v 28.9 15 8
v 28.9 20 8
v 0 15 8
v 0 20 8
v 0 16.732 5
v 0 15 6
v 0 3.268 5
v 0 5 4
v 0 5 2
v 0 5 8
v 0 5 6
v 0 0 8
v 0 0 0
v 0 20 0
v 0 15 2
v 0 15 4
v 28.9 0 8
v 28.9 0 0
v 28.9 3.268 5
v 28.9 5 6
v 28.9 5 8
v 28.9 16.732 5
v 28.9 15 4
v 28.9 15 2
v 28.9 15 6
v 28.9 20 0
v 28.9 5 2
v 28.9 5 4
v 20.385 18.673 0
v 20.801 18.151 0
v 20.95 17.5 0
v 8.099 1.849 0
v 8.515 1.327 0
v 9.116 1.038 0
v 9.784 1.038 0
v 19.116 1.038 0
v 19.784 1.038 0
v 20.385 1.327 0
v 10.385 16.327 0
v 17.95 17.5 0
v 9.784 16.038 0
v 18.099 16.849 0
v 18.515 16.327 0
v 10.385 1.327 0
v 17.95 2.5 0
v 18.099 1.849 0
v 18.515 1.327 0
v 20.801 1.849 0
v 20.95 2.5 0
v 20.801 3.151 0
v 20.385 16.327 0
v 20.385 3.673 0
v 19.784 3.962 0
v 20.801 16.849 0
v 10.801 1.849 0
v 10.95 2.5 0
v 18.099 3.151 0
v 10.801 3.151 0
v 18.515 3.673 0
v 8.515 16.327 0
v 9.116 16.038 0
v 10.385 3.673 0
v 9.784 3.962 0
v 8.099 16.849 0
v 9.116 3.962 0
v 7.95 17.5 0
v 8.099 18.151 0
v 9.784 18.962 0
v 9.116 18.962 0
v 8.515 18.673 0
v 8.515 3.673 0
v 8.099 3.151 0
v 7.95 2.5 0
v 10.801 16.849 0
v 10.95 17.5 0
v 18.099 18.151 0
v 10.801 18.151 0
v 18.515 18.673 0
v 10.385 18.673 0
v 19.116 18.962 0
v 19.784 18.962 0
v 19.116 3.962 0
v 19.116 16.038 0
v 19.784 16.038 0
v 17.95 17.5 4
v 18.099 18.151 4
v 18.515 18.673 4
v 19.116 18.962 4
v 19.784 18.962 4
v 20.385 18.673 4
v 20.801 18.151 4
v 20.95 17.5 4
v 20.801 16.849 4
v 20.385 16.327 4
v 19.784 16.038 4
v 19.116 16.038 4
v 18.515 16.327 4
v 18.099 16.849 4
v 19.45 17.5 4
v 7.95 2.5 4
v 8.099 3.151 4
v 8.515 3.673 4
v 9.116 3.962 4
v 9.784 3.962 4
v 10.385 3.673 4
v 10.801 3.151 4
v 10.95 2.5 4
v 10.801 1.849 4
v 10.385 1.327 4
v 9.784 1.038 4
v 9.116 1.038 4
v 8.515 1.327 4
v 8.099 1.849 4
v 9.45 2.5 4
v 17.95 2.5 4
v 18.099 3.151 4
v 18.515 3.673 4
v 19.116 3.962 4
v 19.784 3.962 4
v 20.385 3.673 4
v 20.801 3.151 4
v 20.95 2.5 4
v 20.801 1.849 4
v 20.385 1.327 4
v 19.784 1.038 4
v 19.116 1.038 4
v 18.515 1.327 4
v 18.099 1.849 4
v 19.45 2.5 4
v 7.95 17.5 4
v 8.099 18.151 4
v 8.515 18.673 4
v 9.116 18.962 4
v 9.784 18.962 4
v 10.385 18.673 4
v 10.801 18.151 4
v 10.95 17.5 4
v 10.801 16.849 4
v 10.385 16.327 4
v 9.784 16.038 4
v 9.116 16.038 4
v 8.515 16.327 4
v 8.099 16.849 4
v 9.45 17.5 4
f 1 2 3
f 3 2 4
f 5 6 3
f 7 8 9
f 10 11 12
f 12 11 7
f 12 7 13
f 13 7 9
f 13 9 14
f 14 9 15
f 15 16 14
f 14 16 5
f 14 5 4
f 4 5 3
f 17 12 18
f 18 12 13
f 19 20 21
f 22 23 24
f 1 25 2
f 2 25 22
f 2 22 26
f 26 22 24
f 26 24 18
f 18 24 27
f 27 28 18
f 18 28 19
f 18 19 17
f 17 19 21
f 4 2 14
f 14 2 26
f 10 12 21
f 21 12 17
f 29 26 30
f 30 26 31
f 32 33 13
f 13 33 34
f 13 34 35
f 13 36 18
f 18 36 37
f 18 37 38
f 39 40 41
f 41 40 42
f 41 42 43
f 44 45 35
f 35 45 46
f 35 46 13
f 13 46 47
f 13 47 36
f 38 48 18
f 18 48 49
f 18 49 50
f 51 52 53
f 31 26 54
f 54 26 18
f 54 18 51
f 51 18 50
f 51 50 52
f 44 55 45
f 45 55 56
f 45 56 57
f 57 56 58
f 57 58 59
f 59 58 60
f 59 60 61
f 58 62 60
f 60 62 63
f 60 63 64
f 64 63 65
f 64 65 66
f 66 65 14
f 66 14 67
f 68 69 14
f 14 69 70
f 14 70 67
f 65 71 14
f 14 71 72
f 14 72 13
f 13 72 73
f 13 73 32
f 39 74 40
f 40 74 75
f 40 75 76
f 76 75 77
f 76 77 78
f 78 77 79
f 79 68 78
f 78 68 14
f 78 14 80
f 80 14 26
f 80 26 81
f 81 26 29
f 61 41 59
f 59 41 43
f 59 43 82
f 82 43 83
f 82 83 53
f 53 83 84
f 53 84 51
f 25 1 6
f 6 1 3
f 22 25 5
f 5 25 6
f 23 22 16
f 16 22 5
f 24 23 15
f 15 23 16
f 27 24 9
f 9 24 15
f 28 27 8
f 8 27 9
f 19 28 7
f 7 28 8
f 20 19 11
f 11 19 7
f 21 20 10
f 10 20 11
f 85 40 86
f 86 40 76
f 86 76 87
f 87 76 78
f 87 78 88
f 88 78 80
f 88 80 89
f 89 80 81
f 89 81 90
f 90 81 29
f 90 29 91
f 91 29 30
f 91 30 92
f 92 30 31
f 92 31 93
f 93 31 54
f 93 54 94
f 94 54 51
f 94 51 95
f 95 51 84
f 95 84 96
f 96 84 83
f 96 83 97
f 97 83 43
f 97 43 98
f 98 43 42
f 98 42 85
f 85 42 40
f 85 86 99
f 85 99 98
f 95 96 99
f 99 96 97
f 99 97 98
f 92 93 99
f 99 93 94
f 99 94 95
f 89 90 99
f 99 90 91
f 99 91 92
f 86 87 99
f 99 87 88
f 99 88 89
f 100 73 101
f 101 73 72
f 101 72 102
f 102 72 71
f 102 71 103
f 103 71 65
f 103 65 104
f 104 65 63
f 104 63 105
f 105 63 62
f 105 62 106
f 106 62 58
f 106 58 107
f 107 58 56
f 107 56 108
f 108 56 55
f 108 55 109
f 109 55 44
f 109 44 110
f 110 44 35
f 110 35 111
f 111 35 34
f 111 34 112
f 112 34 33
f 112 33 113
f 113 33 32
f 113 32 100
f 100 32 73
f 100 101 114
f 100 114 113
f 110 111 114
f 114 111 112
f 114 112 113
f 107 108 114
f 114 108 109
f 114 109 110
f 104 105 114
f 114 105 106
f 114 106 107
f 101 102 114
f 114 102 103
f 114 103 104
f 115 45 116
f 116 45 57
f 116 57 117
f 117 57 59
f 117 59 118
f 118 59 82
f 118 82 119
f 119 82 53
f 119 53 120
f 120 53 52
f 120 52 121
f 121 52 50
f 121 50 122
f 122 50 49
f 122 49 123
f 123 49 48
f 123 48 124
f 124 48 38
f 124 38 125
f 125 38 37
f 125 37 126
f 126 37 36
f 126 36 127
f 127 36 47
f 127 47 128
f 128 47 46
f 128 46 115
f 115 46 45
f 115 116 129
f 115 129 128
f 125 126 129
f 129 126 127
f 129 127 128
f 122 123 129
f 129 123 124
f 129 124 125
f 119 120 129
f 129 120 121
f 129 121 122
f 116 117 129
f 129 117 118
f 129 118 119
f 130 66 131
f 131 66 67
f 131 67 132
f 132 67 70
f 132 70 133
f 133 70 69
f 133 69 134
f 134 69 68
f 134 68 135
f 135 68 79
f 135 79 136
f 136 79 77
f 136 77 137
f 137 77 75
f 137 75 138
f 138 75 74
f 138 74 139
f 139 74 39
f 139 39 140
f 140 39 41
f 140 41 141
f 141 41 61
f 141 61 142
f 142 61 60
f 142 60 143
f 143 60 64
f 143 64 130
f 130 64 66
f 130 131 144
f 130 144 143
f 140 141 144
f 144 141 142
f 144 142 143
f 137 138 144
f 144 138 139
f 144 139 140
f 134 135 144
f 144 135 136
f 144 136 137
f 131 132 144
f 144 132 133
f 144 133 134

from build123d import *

# Parameters (mm, degrees)
SKETCH_1_W          = 28.9
SKETCH_1_H          = 20
EXTRUDE_1_DEPTH     = 8
CUT_EXTRUDE_9_REACH = 38.045
SKETCH_2_R          = 1.5
CUT_EXTRUDE_1_DEPTH = 4


with BuildPart() as part:
    # 草图1 → 凸台-拉伸1 (new body)
    with BuildSketch(Plane.XY):
        with Locations((14.45, 10)):
            Rectangle(SKETCH_1_W, SKETCH_1_H)
    extrude(amount=EXTRUDE_1_DEPTH)

    # 草图3 → 切除-拉伸9 (cut, up to next)
    with BuildSketch(Plane(origin=(28.9, 0, 0), x_dir=(0, 0, -1), z_dir=(1, 0, 0)), mode=Mode.PRIVATE) as cut_extrude_9_sk1:
        Polygon((-8, 15), (-6, 15), (-5, 16.732050808), (-4, 15), (-2, 15), (-2, 5), (-4, 5), (-5, 3.267949192), (-6, 5), (-8, 5), align=None)
    cut_extrude_9_tool1 = extrude(cut_extrude_9_sk1.sketch, amount=-CUT_EXTRUDE_9_REACH, mode=Mode.PRIVATE) & part.part
    add(cut_extrude_9_tool1.solids().sort_by_distance((28.9, 10, 5))[0], mode=Mode.SUBTRACT)

    # 草图2 → 切除-拉伸1 (cut)
    with BuildSketch(Plane(origin=(0, 0, 0), x_dir=(-1, 0, 0), z_dir=(0, 0, -1))):
        with Locations((-19.45, 17.5)):
            Circle(SKETCH_2_R)
        with Locations((-9.45, 17.5)):
            Circle(SKETCH_2_R)
        with Locations((-19.45, 2.5)):
            Circle(SKETCH_2_R)
        with Locations((-9.45, 2.5)):
            Circle(SKETCH_2_R)
    extrude(amount=-CUT_EXTRUDE_1_DEPTH, mode=Mode.SUBTRACT)


solid = part.part
